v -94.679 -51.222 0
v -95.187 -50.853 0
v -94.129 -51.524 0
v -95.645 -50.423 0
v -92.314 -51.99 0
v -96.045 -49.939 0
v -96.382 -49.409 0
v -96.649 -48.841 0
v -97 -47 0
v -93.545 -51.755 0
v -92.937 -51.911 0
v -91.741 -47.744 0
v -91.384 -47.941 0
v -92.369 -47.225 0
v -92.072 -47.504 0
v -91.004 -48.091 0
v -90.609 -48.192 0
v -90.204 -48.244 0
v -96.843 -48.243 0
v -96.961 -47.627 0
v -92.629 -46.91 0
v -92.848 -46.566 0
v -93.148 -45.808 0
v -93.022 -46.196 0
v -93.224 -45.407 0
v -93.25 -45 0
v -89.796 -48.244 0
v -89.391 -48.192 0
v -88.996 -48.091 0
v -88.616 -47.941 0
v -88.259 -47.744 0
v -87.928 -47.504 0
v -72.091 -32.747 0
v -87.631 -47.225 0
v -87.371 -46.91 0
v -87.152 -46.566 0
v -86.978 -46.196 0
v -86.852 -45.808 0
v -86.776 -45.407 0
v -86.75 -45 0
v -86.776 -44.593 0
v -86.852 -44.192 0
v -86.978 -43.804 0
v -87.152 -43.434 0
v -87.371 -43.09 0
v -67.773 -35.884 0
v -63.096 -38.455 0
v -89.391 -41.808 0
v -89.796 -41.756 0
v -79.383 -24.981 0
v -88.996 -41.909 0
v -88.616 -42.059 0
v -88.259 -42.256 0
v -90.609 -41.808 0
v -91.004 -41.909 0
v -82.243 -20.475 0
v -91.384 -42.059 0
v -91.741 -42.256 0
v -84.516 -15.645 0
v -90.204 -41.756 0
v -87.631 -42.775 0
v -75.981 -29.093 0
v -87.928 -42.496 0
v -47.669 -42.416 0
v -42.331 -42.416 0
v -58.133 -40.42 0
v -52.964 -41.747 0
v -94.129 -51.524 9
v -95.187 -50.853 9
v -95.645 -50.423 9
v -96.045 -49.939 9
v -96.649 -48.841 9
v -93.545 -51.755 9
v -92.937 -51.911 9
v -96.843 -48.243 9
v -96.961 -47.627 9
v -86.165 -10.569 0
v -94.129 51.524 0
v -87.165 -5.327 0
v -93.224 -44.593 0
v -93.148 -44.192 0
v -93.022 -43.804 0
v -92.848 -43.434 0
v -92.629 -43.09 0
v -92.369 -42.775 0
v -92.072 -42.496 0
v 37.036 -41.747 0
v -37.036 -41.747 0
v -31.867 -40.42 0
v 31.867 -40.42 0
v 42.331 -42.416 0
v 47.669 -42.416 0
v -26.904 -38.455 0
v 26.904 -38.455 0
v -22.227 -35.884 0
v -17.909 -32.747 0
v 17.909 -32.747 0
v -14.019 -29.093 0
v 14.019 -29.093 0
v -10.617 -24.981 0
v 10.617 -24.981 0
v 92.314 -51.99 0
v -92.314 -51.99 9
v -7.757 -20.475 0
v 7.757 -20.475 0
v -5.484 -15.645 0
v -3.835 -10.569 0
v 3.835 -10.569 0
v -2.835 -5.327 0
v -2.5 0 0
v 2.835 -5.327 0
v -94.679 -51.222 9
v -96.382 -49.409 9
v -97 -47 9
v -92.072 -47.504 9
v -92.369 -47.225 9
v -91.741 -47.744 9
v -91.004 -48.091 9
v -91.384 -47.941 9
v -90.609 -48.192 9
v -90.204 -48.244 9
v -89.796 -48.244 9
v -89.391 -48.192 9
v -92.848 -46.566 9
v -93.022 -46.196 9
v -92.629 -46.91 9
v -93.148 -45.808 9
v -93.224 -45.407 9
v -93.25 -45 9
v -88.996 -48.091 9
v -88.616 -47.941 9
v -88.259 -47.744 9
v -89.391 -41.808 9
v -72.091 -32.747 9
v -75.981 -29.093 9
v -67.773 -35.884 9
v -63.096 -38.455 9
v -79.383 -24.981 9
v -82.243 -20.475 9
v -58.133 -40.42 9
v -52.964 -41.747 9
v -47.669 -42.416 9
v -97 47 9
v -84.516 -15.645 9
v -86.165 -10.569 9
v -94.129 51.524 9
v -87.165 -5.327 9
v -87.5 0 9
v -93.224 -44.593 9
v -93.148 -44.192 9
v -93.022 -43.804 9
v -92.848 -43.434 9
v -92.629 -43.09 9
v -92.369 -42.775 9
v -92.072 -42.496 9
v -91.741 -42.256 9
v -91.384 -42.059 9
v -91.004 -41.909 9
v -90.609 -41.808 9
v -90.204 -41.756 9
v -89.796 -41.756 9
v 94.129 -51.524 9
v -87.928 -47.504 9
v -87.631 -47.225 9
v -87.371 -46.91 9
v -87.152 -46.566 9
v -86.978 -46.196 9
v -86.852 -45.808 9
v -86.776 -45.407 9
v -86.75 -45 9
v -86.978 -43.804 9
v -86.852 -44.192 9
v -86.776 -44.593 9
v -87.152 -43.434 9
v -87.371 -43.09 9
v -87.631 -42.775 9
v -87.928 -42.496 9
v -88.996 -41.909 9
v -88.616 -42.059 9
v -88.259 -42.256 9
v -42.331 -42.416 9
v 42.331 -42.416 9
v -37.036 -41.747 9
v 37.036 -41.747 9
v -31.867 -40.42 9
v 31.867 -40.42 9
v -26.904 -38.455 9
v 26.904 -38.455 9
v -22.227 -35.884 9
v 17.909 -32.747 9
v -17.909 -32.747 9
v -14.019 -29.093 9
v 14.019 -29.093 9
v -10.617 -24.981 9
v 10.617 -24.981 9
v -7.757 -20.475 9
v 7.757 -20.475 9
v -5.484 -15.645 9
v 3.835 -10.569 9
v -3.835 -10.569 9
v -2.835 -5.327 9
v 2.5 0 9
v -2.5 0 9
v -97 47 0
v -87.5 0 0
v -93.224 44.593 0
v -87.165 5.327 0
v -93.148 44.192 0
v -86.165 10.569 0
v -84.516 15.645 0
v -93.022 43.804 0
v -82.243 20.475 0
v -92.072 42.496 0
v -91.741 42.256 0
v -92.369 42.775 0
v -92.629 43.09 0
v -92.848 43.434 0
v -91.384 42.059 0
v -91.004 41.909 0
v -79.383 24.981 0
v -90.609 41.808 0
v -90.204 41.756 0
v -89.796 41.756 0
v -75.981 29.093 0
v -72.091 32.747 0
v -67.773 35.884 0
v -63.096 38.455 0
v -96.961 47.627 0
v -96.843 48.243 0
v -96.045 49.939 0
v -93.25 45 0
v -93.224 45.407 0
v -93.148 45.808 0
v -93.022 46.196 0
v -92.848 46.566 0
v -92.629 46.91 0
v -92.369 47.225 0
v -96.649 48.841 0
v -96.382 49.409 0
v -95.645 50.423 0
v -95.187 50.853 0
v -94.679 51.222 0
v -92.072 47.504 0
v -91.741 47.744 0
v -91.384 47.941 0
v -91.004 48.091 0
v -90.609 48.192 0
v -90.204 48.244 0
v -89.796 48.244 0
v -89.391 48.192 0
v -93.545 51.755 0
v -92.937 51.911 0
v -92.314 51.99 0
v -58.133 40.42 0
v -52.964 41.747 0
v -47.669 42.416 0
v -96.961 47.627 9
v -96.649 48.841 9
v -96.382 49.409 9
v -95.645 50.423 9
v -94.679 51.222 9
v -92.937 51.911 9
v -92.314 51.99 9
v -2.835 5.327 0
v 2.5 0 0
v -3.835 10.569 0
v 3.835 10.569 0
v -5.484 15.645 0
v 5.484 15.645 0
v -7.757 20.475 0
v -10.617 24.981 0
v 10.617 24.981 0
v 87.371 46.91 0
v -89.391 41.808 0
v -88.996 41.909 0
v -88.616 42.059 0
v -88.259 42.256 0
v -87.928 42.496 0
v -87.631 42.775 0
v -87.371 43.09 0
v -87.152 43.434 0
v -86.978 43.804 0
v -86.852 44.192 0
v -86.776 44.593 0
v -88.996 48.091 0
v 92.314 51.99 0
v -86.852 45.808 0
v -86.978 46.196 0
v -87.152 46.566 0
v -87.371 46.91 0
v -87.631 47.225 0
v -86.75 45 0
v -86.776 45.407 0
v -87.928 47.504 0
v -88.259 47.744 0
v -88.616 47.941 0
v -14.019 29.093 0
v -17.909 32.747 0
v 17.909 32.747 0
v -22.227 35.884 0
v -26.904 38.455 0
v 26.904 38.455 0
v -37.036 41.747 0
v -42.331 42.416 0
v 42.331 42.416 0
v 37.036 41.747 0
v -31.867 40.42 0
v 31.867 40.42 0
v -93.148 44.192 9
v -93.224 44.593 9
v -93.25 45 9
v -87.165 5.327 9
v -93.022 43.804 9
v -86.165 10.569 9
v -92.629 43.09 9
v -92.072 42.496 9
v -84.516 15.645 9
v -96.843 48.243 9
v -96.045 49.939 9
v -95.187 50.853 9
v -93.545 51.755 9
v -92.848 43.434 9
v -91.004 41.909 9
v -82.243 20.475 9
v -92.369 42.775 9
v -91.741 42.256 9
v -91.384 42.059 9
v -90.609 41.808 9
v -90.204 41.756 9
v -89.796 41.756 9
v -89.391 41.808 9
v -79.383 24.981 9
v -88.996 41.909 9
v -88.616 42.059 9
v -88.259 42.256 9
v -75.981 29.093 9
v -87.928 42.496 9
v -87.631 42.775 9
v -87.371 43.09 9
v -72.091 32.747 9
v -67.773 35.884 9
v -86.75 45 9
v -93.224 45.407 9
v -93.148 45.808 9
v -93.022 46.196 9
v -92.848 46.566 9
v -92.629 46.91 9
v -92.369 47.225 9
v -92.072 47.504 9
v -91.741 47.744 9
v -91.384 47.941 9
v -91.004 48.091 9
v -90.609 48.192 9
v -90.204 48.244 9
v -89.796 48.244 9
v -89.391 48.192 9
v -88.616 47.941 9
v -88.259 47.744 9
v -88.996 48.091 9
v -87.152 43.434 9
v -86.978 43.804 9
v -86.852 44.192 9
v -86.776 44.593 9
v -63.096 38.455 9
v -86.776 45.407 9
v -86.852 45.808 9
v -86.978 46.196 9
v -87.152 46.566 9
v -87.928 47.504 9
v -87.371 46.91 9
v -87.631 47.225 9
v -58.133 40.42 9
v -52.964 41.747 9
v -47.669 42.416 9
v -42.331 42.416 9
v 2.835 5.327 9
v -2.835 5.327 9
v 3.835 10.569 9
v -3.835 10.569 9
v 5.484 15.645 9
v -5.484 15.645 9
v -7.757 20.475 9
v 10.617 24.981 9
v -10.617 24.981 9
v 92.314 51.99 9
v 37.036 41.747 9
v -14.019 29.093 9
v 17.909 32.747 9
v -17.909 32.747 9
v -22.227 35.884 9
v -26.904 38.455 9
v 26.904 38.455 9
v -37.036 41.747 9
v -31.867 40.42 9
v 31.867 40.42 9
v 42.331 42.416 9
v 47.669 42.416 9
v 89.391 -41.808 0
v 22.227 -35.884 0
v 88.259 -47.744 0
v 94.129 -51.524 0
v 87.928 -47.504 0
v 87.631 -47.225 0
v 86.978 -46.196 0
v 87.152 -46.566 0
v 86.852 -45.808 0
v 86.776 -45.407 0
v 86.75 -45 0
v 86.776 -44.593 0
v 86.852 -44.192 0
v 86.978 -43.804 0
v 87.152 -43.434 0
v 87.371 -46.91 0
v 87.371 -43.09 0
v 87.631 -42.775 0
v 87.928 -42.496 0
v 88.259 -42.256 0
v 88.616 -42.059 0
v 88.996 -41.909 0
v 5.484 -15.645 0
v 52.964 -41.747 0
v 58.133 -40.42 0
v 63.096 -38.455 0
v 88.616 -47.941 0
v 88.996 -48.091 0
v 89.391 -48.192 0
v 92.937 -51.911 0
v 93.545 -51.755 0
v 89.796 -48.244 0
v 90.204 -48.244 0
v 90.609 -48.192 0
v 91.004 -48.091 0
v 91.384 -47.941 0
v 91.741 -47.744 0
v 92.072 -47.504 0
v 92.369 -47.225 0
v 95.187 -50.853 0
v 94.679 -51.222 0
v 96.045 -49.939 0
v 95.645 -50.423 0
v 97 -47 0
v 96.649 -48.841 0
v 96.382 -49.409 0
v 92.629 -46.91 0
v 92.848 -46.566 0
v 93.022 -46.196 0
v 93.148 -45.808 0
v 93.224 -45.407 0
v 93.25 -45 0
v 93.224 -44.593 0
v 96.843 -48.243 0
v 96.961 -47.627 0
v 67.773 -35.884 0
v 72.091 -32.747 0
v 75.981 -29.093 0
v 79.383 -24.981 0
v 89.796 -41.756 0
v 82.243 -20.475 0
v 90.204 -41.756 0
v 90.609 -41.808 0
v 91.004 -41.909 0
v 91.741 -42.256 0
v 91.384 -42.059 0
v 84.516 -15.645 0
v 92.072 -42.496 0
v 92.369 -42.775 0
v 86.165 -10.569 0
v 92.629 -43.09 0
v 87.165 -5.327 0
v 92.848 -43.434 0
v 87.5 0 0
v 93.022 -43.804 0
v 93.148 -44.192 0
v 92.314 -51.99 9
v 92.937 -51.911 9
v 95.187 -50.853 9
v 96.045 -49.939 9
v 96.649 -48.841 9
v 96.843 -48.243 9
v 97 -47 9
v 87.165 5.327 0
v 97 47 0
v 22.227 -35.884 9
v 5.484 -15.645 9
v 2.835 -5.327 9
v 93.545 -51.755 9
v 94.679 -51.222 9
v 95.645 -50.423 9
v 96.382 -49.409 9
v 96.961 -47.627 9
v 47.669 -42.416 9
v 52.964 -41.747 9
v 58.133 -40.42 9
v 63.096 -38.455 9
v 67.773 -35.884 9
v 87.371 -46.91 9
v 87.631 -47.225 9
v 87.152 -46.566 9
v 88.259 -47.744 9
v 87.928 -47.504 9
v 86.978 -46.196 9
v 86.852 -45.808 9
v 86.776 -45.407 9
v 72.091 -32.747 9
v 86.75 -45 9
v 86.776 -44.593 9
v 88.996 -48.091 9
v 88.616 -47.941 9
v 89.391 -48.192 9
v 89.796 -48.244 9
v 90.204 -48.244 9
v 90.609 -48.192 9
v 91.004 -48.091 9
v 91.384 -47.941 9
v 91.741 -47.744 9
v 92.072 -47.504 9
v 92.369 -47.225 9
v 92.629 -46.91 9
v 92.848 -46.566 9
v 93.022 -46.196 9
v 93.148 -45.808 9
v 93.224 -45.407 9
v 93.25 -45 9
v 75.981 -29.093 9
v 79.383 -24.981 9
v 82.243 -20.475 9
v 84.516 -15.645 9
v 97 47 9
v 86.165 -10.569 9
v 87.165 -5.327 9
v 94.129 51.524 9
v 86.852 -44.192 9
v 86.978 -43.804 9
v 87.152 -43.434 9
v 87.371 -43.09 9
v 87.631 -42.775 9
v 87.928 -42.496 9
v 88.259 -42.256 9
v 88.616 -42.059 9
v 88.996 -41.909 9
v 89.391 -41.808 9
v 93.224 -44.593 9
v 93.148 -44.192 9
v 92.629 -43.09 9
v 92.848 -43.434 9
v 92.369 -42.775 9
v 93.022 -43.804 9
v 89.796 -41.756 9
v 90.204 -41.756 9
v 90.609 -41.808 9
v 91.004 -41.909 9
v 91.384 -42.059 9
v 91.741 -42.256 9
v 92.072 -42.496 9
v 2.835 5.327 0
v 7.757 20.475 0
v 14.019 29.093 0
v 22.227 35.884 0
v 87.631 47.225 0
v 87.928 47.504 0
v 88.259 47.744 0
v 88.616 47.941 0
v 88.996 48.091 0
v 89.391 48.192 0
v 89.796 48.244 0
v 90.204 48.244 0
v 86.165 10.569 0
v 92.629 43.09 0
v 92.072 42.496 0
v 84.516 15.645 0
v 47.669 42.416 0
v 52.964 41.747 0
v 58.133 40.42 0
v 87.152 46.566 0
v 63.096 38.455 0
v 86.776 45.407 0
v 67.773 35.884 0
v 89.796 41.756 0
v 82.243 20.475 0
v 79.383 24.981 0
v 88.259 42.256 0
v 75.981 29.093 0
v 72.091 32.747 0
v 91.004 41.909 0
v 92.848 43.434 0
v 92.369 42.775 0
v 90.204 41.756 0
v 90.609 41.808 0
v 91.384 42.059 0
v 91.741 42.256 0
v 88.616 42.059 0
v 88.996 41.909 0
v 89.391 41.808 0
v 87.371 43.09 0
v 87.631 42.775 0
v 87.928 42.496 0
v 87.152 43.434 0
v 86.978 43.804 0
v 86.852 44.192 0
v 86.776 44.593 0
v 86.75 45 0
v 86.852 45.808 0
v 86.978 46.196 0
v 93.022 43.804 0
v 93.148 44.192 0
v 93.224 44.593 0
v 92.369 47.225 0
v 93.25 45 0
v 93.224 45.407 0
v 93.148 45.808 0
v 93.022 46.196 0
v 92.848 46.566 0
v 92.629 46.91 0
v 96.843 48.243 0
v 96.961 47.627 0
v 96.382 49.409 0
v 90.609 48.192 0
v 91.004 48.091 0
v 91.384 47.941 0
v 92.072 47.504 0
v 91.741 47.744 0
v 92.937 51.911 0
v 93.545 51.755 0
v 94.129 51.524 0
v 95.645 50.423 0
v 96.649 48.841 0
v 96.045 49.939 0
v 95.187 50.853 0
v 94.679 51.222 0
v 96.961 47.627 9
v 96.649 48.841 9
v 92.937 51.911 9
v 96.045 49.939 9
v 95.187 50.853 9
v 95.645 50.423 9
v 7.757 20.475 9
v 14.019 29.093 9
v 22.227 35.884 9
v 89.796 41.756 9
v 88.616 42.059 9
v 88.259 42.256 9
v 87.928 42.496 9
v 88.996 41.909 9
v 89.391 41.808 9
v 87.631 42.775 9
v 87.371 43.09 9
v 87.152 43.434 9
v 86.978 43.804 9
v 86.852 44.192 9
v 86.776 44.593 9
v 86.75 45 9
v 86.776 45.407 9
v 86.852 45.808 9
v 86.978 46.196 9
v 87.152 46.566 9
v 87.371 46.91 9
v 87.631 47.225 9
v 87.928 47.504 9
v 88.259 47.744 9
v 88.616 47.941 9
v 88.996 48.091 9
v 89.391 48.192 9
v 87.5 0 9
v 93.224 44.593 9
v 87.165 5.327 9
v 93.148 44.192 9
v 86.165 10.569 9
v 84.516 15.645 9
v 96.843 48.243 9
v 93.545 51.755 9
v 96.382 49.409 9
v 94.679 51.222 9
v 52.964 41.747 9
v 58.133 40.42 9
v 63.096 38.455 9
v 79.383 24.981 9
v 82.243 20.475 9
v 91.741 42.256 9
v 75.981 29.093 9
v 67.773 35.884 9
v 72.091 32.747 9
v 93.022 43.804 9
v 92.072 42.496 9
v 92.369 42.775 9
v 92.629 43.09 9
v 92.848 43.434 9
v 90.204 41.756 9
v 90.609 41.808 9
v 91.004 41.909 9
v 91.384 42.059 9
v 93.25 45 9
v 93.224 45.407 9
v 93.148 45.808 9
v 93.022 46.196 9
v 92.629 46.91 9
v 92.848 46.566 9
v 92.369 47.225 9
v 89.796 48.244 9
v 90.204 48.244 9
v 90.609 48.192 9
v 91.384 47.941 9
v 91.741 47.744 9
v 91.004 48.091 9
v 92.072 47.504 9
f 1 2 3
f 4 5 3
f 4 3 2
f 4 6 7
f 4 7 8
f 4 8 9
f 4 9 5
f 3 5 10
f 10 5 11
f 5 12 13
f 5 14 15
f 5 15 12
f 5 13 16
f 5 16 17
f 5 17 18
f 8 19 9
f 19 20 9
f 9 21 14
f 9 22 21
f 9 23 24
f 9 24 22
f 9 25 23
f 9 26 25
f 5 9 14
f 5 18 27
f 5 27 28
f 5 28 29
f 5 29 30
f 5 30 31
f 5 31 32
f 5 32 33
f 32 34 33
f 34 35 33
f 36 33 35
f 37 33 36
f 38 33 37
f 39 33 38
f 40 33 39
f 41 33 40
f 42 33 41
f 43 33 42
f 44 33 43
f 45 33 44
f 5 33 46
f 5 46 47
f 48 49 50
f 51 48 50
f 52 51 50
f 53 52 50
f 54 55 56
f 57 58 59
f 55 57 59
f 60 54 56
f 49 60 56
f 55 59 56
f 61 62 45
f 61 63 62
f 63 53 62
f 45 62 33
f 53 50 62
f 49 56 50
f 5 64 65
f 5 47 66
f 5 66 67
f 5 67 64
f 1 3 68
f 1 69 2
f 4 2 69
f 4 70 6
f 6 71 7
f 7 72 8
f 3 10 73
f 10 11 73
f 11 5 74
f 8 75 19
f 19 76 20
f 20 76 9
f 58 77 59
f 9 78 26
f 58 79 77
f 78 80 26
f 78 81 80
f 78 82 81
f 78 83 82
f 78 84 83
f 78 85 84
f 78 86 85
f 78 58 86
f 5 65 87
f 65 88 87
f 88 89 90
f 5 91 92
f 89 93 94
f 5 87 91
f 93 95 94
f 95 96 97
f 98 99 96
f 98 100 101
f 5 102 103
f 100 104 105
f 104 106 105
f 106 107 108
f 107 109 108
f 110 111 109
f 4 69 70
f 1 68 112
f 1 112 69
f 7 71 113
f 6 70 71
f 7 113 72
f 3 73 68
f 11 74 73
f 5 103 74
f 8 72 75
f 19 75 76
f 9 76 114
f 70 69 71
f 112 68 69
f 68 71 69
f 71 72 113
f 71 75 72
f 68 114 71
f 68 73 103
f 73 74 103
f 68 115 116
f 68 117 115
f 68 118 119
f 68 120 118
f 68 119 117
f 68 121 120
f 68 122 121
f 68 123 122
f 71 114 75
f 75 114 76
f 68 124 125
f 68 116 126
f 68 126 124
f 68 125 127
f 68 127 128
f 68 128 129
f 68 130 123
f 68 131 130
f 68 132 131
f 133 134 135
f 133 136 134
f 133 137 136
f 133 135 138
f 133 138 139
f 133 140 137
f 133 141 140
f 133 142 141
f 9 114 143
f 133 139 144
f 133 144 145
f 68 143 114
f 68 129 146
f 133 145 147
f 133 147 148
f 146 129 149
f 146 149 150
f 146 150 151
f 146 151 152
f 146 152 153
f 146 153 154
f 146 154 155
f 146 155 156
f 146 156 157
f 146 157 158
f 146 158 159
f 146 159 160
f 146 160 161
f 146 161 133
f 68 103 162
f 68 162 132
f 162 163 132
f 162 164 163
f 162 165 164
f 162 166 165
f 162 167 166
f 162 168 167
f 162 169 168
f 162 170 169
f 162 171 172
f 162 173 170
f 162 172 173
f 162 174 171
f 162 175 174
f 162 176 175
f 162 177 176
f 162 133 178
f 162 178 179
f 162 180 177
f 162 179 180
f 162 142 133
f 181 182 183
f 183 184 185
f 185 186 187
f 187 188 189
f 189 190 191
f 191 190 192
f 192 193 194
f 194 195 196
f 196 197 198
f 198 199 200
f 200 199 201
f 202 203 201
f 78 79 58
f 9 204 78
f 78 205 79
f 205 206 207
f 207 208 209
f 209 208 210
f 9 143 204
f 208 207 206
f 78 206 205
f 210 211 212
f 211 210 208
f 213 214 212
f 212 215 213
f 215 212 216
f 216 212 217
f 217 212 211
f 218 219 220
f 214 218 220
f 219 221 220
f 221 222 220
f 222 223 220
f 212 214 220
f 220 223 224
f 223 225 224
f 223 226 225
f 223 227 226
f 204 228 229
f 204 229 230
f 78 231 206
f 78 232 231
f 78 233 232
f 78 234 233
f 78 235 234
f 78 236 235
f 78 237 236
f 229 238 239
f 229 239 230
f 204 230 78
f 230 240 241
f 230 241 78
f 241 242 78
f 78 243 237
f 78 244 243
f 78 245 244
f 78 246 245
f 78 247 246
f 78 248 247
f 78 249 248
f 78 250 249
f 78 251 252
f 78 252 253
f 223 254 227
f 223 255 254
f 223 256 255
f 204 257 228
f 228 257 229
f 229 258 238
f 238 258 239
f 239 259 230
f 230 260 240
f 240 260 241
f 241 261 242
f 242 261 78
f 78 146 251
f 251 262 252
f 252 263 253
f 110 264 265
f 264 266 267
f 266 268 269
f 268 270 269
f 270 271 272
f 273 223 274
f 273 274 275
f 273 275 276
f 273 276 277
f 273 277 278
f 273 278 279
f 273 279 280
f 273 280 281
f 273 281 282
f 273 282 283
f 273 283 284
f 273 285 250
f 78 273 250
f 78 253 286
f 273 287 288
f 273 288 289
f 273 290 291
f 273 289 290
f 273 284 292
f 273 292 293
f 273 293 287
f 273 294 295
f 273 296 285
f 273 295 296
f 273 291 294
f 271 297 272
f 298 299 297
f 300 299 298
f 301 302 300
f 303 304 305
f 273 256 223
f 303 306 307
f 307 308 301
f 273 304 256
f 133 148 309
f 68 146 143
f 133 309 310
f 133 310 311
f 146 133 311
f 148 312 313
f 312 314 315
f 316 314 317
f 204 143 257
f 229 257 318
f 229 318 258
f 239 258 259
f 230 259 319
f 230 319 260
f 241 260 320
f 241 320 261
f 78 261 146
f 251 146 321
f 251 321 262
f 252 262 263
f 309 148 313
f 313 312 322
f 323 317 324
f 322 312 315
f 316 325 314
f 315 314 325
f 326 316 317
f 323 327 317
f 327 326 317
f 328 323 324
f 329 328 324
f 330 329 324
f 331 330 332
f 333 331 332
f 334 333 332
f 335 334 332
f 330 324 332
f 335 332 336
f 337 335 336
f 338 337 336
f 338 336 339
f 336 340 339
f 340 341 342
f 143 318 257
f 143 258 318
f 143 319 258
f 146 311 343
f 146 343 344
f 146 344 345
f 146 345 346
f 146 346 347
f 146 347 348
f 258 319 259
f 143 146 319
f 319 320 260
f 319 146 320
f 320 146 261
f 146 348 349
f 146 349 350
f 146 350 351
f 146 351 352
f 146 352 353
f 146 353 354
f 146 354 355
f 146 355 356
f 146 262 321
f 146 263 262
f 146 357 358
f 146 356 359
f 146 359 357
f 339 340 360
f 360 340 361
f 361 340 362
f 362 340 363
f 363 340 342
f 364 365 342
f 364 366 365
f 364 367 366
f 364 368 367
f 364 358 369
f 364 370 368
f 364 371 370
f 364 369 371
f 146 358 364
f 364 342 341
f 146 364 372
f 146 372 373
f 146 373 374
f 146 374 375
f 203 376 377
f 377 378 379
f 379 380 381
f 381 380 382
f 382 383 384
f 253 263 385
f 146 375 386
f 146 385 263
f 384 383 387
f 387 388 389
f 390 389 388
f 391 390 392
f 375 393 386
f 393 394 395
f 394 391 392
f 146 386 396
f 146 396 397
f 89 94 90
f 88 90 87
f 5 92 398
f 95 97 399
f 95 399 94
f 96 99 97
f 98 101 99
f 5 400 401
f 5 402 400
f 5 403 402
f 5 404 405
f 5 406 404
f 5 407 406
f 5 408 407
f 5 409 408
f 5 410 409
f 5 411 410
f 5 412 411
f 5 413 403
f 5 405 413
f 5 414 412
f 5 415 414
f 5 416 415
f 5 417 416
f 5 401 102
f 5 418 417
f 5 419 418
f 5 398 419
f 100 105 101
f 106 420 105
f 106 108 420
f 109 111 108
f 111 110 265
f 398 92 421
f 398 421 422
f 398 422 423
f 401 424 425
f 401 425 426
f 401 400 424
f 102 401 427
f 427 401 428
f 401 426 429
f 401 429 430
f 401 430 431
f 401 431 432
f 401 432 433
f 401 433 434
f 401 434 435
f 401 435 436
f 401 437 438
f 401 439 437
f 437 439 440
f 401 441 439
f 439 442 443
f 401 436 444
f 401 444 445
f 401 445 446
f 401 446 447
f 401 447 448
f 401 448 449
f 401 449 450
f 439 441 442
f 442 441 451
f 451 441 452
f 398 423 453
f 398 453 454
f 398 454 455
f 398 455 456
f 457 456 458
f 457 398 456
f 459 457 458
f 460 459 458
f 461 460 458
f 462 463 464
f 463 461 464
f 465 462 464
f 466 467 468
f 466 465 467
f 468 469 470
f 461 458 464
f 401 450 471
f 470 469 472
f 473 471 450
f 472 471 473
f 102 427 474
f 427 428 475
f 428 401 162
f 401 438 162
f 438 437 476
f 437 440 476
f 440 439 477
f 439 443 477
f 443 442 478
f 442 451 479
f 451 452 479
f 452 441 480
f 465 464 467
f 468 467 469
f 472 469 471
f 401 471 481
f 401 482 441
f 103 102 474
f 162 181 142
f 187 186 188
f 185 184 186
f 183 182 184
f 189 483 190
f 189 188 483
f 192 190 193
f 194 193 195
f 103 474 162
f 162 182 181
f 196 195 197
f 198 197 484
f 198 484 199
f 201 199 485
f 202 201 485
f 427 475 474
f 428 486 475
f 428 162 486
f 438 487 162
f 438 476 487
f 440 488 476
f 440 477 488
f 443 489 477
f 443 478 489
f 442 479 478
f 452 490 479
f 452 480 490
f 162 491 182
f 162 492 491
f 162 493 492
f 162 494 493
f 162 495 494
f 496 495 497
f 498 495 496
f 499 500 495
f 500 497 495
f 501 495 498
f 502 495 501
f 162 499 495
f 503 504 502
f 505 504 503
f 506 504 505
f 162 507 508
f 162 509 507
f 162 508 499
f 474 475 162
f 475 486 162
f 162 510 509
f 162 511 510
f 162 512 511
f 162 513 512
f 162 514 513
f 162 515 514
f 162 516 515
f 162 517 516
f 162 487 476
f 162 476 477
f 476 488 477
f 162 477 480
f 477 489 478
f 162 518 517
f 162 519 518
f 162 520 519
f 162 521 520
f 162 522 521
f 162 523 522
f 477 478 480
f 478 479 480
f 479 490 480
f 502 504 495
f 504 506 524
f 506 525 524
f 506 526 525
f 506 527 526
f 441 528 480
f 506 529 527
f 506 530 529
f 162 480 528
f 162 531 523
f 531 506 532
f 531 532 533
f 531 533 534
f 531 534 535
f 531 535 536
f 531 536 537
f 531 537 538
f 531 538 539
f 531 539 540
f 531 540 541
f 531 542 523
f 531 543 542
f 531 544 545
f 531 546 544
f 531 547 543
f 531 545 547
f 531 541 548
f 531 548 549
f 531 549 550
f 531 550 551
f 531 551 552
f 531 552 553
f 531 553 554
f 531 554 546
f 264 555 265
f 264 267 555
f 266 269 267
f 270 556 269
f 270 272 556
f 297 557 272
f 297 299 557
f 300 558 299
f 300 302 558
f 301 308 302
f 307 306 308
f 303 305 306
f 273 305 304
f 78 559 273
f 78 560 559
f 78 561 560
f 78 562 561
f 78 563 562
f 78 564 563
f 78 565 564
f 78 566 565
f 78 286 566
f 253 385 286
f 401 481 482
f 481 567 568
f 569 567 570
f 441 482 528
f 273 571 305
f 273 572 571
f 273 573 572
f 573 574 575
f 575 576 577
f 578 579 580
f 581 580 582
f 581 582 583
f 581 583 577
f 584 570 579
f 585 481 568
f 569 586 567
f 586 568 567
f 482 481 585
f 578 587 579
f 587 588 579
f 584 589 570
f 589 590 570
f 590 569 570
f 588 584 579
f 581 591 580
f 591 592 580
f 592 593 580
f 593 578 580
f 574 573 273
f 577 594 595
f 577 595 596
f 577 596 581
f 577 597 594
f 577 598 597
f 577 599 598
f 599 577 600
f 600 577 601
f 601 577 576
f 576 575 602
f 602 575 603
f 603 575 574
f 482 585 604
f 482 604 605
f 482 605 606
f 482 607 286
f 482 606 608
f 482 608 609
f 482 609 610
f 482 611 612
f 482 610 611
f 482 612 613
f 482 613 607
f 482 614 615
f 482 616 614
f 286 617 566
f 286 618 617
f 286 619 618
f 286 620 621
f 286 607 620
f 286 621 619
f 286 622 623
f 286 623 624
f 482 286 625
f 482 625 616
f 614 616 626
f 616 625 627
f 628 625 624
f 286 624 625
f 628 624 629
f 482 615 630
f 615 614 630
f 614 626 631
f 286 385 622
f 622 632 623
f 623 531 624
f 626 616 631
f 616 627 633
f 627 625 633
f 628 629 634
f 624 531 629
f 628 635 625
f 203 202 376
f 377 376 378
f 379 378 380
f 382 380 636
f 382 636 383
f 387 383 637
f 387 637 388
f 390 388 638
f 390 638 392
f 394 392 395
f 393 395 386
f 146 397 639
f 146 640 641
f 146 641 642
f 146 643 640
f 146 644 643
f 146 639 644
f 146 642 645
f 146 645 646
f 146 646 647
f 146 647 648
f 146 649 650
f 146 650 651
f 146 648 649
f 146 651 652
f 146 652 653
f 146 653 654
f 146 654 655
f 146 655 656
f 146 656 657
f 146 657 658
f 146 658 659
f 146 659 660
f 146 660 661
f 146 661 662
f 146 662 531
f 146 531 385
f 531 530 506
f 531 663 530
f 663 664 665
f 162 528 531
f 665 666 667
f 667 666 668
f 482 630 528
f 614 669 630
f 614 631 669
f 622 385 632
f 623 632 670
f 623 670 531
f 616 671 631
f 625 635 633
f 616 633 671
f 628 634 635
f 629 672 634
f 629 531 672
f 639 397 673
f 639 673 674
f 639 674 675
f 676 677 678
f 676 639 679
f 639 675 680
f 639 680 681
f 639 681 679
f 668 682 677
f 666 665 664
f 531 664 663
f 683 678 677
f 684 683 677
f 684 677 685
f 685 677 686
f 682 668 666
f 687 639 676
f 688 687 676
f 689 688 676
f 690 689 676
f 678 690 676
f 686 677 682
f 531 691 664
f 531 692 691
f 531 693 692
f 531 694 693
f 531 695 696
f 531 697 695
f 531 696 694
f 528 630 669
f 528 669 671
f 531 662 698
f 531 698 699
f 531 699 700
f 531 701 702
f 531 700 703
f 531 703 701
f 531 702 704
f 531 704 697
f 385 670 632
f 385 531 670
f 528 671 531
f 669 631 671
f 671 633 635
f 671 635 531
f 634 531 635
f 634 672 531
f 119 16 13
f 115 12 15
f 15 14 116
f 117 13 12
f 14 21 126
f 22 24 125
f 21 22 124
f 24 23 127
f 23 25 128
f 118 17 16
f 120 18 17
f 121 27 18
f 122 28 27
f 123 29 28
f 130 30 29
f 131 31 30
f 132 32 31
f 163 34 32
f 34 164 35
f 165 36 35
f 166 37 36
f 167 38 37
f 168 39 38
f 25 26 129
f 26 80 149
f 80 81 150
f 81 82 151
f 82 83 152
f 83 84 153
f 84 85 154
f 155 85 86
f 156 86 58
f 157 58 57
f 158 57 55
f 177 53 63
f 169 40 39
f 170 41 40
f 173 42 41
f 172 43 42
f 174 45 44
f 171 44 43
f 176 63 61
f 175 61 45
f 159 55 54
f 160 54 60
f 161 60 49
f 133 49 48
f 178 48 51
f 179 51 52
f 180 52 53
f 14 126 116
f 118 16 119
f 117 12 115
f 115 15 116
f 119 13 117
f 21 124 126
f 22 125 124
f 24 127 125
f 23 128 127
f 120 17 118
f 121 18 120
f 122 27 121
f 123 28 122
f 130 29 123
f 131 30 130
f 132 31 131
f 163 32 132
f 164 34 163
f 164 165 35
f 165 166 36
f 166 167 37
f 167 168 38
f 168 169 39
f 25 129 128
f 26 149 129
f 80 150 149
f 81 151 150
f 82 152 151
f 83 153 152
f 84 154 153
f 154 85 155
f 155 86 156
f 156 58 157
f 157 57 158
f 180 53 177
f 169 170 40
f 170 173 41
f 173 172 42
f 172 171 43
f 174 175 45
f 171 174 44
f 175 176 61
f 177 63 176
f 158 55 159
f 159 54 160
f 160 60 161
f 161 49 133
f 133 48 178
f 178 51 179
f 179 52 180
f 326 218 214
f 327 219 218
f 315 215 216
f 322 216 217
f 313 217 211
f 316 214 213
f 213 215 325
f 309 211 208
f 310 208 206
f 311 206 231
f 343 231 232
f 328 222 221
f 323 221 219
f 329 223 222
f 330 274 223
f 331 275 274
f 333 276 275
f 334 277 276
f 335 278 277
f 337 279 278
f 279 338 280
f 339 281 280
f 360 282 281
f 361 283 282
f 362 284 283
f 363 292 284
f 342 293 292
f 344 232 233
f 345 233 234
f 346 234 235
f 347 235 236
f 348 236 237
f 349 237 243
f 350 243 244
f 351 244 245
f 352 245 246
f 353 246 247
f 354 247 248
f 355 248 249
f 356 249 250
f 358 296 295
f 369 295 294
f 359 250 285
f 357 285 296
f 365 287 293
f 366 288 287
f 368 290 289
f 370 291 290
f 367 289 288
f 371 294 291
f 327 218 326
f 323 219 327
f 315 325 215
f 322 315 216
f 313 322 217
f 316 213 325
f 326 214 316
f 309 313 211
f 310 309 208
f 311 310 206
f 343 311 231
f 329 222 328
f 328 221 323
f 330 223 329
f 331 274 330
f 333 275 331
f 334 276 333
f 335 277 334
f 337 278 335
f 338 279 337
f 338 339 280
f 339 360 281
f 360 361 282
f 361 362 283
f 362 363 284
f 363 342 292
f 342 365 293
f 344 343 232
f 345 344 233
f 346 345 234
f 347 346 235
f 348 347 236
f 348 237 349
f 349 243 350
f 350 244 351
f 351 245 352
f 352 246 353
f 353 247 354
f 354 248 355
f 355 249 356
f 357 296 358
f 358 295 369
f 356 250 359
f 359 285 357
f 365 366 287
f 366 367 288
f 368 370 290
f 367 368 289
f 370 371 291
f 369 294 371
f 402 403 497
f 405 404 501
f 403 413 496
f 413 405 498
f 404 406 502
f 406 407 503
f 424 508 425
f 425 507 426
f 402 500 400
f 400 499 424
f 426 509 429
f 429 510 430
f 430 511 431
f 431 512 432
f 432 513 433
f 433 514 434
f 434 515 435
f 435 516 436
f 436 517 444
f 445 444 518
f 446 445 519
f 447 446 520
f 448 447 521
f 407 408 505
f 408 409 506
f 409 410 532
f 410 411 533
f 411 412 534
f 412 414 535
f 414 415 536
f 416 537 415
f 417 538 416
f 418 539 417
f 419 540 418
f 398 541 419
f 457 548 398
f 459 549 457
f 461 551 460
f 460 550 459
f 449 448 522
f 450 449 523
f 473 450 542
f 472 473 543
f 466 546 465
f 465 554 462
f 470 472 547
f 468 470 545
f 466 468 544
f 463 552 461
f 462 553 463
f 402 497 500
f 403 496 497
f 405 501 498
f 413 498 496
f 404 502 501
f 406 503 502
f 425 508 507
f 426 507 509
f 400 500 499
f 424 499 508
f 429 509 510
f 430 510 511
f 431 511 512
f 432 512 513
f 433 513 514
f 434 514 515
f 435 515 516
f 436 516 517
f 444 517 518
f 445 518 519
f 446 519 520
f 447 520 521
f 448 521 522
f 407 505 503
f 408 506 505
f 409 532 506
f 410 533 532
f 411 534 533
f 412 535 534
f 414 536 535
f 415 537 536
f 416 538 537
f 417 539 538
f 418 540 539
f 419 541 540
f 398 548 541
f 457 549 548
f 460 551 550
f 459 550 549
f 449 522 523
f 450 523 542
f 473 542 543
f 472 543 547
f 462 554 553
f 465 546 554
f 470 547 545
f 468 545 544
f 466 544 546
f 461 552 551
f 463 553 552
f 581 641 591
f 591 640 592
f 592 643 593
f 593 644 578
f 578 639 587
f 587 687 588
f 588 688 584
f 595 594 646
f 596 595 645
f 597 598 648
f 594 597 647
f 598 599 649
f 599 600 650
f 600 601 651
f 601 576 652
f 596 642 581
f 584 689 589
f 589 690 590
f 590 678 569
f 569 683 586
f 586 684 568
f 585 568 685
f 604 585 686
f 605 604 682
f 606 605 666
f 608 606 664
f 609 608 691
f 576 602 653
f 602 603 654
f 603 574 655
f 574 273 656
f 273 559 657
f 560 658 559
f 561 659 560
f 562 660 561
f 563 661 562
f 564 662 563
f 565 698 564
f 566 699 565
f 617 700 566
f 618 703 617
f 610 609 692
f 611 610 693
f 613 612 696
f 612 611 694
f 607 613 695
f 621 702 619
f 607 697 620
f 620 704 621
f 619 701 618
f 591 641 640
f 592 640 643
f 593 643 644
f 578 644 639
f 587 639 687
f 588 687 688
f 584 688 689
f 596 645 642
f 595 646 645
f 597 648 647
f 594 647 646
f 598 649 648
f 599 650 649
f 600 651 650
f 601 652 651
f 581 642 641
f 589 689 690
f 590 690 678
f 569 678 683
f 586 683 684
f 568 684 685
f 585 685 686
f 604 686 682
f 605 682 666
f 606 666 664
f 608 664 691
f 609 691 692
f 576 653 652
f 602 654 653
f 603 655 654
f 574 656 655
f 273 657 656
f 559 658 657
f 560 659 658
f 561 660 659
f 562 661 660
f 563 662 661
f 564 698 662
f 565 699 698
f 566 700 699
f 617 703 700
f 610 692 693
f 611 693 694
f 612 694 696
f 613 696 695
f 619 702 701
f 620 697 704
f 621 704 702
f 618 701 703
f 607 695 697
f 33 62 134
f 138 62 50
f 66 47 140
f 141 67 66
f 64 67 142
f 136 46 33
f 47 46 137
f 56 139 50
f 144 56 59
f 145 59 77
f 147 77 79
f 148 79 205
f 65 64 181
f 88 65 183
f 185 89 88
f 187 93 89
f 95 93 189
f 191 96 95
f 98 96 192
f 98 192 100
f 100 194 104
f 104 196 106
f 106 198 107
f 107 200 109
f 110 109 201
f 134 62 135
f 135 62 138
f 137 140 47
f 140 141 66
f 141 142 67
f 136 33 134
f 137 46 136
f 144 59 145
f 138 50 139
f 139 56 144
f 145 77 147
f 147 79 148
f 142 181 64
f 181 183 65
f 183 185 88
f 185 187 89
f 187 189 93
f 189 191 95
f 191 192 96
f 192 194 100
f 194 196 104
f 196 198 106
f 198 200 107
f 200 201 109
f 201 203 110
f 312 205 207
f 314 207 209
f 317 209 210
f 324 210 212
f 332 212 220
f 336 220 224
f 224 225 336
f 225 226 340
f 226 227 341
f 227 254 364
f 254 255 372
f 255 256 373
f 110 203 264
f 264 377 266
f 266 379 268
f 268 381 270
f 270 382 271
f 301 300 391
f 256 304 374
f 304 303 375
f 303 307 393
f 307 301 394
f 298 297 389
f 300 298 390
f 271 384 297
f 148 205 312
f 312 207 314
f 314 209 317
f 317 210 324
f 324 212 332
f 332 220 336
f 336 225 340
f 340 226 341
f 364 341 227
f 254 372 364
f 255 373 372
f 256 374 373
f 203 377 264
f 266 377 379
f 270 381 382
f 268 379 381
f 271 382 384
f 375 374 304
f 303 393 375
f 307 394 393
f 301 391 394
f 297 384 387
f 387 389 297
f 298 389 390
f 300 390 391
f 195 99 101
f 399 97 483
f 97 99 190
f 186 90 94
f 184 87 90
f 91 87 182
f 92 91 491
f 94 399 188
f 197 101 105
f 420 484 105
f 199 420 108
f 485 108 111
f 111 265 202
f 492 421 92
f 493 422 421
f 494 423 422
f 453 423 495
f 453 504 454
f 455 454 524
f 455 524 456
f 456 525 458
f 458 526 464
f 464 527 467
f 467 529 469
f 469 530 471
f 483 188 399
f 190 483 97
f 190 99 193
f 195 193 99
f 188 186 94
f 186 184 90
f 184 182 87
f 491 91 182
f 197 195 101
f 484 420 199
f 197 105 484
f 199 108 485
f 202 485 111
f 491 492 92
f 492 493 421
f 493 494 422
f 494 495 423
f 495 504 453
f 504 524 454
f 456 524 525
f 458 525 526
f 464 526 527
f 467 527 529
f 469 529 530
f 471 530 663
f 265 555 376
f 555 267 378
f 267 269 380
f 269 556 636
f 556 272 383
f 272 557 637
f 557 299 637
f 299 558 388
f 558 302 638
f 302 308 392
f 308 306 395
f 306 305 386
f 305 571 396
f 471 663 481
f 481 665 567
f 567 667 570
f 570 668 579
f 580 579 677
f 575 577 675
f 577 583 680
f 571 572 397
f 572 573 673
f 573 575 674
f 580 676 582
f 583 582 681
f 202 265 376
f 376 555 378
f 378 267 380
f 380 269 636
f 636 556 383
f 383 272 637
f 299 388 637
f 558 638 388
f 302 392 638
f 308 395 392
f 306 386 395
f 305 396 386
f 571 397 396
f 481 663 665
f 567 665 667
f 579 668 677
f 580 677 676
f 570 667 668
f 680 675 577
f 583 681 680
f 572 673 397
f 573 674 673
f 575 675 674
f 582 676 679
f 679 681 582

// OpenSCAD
$fn = 50;

difference() {
	union() {
		hull() {
			translate(v = [-92.0, 47.0, 0]) {
				cylinder(h = 9, r = 5);
			}
			translate(v = [92.0, 47.0, 0]) {
				cylinder(h = 9, r = 5);
			}
			translate(v = [-92.0, -47.0, 0]) {
				cylinder(h = 9, r = 5);
			}
			translate(v = [92.0, -47.0, 0]) {
				cylinder(h = 9, r = 5);
			}
		}
	}
	union() {
		translate(v = [-90.0, -45.0, -100.0]) {
			cylinder(h = 200, r = 3.25);
		}
		translate(v = [-90.0, 45.0, -100.0]) {
			cylinder(h = 200, r = 3.25);
		}
		translate(v = [90.0, -45.0, -100.0]) {
			cylinder(h = 200, r = 3.25);
		}
		translate(v = [90.0, 45.0, -100.0]) {
			cylinder(h = 200, r = 3.25);
		}
		translate(v = [-90.0, -45.0, -100.0]) {
			cylinder(h = 200, r = 1.8);
		}
		translate(v = [-90.0, 45.0, -100.0]) {
			cylinder(h = 200, r = 1.8);
		}
		translate(v = [90.0, -45.0, -100.0]) {
			cylinder(h = 200, r = 1.8);
		}
		translate(v = [90.0, 45.0, -100.0]) {
			cylinder(h = 200, r = 1.8);
		}
		translate(v = [-45.0, 0, 0.0]) {
			cylinder(h = 9, r = 42.5);
		}
		translate(v = [45.0, 0, 0.0]) {
			cylinder(h = 9, r = 42.5);
		}
	}
}
